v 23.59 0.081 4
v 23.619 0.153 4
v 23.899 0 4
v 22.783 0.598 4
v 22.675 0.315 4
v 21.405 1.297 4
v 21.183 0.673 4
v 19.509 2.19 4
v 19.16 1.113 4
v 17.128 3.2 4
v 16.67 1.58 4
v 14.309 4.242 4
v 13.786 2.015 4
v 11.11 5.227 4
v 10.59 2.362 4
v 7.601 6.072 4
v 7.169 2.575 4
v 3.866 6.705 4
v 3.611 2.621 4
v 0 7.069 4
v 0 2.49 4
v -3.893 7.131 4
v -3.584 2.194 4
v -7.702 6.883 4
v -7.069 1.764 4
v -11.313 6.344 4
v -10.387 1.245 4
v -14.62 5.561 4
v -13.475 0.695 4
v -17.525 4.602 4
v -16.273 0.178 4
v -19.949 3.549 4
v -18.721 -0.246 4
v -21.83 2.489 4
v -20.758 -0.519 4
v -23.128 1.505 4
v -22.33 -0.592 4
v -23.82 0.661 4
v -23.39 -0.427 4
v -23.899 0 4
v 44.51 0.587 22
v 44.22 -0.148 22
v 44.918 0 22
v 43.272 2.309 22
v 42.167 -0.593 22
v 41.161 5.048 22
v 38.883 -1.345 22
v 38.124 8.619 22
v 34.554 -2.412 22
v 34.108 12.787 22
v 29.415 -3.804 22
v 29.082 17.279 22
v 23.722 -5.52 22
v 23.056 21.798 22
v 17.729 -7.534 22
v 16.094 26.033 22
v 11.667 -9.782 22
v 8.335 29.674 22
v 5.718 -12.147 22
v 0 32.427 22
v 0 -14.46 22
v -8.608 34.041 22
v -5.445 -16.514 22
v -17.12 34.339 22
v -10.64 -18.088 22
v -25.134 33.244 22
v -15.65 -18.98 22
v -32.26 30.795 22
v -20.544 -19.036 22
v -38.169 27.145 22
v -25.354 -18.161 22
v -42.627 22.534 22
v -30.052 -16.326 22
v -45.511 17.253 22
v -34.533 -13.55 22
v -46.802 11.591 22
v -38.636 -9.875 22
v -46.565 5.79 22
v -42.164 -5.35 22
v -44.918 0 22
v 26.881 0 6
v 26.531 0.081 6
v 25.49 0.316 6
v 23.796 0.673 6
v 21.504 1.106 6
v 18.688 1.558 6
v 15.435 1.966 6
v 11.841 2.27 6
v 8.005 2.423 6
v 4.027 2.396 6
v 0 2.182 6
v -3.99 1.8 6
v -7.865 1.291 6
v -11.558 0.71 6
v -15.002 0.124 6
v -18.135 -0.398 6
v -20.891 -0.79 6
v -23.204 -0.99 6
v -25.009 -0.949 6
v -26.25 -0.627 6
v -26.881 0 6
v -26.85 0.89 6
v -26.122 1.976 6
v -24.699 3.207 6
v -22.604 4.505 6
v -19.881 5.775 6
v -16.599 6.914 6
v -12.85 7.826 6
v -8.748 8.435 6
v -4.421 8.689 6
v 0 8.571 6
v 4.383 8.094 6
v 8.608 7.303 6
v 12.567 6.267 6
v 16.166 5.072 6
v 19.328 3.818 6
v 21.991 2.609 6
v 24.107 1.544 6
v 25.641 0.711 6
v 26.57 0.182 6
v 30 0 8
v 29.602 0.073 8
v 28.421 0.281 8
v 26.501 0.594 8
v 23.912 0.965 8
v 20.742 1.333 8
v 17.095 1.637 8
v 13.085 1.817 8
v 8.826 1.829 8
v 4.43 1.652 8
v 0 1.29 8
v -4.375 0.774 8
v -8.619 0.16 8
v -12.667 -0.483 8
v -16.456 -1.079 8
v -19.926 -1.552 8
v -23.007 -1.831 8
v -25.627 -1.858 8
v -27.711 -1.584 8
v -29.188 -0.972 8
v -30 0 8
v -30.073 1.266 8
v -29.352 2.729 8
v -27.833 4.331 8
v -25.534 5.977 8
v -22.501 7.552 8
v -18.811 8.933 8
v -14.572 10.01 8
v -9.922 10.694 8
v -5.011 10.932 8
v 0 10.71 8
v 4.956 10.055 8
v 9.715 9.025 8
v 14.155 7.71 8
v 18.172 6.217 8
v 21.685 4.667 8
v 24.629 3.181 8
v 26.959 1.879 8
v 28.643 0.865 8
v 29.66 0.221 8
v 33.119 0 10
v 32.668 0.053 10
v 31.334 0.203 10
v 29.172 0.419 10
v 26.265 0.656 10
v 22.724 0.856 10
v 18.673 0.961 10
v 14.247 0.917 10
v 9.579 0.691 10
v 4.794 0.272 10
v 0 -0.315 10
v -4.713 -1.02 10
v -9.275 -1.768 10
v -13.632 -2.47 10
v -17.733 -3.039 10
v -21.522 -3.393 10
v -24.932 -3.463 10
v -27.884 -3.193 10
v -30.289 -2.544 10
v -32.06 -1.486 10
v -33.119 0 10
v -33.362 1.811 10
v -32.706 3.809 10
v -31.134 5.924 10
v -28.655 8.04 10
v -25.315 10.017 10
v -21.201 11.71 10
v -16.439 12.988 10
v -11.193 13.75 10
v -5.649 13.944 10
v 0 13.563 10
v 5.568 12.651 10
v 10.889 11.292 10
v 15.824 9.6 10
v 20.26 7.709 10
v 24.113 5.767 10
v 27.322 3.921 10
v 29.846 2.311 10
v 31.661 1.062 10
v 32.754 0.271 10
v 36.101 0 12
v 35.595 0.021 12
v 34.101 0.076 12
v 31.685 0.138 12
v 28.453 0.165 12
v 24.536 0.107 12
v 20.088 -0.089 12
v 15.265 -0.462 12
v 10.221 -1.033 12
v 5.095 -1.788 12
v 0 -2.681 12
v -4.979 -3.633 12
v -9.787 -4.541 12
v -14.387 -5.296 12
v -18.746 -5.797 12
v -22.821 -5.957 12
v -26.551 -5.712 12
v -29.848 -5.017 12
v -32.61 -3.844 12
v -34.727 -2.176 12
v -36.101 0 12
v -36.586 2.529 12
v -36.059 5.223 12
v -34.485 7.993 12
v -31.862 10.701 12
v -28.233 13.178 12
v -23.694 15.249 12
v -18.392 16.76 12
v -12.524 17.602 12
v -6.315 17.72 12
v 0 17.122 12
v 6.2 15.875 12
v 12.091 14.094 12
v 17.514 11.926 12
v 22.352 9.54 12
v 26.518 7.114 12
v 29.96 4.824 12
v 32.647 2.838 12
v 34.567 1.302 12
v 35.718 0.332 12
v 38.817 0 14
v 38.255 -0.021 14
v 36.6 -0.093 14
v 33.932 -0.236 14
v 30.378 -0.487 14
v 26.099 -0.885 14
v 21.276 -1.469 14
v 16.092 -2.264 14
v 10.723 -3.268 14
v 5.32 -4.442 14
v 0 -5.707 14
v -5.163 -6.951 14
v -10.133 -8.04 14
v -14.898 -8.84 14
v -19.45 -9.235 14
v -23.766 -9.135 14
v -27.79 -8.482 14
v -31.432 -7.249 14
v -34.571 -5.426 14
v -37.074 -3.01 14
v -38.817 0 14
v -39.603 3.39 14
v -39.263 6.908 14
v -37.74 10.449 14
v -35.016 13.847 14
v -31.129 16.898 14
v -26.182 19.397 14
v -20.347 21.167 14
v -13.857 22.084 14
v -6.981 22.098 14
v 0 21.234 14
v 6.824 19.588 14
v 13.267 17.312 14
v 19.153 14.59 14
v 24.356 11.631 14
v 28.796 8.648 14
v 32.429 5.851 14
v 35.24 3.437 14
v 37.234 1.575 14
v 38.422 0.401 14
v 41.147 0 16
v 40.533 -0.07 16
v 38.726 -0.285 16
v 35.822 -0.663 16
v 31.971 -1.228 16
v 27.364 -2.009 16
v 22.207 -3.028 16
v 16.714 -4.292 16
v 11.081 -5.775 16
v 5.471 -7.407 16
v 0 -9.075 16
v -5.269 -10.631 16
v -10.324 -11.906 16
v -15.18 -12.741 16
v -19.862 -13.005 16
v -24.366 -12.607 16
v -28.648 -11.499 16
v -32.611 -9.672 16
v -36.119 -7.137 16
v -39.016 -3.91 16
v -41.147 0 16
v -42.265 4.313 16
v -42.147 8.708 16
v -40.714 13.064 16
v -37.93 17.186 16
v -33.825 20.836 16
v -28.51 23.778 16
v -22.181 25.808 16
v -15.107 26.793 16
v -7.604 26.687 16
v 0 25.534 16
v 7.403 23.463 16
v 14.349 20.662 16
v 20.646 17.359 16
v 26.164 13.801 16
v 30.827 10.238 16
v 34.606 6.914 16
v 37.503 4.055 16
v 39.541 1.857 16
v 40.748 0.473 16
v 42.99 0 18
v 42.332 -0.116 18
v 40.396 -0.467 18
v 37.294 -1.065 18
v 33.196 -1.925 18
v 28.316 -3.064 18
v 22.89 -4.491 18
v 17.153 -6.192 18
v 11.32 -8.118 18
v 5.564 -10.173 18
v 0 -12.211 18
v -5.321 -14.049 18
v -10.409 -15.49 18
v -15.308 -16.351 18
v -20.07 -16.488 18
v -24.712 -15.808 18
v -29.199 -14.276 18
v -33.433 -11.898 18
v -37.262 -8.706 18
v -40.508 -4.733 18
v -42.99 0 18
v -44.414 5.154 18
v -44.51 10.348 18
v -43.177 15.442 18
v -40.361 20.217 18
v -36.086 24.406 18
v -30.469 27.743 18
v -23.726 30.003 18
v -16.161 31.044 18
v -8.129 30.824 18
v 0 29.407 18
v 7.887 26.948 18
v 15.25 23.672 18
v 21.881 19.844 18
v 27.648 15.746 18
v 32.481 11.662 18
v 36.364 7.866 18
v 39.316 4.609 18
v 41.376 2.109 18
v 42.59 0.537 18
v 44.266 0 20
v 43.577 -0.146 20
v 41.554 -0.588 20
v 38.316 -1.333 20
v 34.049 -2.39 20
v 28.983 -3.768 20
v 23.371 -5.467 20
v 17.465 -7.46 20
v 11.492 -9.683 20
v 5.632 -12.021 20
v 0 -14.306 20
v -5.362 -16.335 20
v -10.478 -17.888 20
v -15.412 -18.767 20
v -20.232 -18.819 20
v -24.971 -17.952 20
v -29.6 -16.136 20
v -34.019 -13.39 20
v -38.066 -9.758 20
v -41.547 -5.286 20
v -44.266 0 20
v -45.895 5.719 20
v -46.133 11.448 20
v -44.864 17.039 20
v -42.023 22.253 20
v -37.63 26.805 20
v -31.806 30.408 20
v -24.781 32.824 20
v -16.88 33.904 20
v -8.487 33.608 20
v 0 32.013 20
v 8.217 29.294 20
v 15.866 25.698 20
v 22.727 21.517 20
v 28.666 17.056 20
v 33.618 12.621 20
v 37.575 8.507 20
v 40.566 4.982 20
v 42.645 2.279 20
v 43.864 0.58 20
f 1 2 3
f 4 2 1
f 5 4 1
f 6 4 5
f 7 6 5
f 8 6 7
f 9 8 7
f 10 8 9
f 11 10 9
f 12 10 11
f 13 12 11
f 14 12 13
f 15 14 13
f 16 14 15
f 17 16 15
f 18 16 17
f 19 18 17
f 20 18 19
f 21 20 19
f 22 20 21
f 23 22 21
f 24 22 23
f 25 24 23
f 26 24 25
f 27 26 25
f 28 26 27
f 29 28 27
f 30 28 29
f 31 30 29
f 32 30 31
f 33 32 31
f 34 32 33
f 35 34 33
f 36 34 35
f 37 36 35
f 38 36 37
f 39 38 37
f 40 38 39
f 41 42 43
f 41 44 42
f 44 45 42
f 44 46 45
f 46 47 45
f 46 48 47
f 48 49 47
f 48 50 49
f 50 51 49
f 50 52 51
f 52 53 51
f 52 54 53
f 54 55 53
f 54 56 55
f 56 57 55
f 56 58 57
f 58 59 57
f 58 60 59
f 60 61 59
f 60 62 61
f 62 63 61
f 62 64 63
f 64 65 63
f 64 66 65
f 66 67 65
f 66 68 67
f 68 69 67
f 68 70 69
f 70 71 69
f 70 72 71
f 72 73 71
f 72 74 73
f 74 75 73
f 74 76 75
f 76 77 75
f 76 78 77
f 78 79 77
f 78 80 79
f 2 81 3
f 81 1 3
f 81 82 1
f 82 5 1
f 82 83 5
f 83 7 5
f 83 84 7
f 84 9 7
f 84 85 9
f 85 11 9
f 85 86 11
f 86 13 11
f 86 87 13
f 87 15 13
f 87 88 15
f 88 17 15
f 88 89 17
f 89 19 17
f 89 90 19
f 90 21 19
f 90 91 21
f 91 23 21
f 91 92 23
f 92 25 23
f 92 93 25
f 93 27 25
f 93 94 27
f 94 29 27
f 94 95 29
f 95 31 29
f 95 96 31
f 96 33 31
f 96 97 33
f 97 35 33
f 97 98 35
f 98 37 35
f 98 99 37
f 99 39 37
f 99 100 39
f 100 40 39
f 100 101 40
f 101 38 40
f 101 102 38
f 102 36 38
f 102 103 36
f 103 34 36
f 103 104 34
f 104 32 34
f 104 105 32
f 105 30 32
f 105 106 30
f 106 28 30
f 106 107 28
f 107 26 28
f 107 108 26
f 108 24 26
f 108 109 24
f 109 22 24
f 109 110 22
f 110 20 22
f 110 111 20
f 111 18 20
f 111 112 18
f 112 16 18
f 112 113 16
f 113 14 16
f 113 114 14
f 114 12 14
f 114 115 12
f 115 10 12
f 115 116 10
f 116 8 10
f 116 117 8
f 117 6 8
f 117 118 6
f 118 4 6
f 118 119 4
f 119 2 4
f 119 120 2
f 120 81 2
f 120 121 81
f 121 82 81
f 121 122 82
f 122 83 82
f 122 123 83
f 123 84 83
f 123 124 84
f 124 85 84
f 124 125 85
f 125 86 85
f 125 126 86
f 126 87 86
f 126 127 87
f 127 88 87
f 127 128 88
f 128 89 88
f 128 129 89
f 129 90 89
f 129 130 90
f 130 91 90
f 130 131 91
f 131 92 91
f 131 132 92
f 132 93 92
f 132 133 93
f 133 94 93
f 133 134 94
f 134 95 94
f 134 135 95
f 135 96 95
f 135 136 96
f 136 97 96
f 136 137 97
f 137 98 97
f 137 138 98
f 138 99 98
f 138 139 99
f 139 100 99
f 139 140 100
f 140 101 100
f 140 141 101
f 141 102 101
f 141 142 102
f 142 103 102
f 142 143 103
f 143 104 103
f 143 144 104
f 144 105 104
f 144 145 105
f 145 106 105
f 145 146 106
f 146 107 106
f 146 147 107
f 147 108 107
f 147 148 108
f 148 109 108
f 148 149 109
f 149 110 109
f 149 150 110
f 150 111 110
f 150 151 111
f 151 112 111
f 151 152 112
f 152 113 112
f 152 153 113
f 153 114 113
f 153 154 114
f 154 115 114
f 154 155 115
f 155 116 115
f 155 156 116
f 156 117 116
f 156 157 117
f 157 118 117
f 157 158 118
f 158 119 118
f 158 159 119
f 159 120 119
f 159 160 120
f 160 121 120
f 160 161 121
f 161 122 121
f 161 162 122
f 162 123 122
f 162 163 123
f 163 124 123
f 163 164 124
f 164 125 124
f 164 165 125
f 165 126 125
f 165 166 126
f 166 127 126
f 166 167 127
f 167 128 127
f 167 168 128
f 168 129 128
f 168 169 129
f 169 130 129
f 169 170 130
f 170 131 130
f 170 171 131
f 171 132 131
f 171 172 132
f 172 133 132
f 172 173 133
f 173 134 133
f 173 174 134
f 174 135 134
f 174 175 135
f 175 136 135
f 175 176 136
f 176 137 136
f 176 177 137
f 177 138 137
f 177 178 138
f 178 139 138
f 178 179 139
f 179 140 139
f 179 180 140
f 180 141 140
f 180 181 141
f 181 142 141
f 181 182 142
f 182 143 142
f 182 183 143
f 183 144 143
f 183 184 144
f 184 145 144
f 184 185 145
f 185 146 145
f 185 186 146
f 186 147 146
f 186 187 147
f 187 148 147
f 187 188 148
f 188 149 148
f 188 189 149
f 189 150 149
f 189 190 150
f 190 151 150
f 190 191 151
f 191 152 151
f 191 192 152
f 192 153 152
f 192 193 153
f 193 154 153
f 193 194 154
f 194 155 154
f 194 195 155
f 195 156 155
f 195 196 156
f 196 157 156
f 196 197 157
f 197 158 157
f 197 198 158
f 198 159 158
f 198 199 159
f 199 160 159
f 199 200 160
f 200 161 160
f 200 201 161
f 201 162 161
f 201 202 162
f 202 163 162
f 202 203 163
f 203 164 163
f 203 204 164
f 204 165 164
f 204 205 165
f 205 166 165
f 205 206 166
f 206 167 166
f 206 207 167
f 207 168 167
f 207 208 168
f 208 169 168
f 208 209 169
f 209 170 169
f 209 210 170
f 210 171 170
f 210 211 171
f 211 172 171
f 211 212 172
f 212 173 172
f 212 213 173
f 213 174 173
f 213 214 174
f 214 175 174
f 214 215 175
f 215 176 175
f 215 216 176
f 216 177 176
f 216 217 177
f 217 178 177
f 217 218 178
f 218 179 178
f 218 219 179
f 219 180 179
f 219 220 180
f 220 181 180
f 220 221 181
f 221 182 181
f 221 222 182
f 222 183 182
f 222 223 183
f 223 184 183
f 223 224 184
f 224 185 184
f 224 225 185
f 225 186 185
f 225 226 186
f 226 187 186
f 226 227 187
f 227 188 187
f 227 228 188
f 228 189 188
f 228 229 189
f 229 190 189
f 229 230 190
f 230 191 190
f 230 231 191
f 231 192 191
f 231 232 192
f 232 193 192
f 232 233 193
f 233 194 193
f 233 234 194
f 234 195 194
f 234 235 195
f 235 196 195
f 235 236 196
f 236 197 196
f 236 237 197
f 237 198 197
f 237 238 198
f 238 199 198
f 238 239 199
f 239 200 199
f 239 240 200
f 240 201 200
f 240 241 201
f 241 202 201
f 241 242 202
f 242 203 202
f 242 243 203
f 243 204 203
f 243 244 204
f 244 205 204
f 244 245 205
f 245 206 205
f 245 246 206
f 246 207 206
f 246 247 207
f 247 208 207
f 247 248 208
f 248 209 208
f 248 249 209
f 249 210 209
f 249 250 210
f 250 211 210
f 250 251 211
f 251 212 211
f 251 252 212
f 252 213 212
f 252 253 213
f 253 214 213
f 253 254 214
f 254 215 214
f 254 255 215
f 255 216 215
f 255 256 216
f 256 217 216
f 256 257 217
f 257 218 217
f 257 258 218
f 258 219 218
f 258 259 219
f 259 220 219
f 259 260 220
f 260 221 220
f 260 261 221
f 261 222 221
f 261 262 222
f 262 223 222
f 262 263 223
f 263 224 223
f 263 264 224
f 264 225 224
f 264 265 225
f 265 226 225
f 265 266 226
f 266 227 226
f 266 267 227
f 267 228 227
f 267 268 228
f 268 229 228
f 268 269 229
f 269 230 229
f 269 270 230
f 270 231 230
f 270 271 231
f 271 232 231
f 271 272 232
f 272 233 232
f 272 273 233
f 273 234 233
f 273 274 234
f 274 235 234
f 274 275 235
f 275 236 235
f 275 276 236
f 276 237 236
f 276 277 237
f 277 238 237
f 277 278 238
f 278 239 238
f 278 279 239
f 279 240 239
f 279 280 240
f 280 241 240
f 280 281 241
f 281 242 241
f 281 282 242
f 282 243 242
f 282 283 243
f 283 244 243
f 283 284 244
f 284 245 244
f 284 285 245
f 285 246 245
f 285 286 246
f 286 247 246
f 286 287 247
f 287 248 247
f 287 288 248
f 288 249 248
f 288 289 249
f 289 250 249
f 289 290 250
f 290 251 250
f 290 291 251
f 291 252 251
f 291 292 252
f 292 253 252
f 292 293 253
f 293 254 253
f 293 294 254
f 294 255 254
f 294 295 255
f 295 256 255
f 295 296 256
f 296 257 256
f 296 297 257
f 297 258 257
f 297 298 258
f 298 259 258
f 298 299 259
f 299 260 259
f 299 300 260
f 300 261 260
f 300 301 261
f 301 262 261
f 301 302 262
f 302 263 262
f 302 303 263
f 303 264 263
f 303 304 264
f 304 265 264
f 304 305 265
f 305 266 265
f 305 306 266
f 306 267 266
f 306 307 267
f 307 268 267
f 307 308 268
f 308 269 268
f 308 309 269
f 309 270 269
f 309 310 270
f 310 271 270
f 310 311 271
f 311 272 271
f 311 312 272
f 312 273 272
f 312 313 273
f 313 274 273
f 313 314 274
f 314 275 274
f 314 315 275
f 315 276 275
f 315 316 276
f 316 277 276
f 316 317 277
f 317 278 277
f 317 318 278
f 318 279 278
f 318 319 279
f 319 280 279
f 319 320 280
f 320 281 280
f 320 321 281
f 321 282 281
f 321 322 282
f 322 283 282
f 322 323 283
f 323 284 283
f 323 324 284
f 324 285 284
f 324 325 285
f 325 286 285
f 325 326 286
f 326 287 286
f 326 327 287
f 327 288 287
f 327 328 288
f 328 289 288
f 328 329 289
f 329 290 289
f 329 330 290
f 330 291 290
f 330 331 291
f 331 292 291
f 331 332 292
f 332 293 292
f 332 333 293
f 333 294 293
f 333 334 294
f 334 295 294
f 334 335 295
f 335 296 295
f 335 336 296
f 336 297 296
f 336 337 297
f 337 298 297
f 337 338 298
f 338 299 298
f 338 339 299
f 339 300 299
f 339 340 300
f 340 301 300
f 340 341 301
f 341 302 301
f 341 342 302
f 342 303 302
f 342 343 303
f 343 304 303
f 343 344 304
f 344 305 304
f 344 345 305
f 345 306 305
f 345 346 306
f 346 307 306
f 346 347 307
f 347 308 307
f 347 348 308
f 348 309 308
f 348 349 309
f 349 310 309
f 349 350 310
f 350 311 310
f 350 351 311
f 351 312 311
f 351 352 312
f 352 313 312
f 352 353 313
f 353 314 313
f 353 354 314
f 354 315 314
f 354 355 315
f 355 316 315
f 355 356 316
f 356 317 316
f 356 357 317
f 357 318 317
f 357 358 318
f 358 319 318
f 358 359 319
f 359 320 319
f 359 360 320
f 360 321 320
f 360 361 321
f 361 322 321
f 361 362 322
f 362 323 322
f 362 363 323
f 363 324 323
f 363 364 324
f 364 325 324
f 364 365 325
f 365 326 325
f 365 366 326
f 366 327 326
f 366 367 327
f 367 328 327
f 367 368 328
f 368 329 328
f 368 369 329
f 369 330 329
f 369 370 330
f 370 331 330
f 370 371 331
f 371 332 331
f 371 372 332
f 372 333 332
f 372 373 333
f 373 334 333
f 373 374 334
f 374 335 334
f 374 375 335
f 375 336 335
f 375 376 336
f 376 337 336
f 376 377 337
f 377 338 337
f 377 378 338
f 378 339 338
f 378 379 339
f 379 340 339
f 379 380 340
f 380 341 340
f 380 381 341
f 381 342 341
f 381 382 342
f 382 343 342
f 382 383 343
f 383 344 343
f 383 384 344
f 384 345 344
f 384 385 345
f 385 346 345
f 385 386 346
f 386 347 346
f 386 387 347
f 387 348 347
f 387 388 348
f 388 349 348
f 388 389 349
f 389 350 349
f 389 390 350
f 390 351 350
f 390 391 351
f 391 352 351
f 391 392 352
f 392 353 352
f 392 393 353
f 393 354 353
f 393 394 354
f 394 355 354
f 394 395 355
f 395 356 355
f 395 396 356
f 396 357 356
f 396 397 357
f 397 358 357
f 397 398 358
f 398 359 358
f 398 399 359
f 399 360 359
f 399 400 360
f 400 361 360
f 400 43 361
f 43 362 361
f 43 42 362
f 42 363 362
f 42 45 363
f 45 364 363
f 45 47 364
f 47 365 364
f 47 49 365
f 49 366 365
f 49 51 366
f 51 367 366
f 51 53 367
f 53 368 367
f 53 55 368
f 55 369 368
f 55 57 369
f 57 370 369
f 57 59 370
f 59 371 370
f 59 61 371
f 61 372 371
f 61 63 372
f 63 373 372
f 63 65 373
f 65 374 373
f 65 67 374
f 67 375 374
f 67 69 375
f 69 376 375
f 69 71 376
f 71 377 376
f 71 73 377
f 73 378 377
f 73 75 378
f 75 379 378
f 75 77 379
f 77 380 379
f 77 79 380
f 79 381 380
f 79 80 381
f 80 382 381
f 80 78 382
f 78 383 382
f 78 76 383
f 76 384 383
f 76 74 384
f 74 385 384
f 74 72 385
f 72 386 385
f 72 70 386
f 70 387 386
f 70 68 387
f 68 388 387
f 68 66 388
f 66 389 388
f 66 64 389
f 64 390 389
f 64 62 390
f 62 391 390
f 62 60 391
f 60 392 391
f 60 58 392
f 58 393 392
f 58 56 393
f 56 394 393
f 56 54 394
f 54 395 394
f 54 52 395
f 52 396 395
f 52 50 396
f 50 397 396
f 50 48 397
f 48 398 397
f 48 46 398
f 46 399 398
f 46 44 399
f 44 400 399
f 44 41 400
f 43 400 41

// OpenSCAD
// file: Naca4.scad
// Naca4.scad - library for parametric airfoils of 4 digit NACA series
// Code: Rudolf Huttary, Berlin 
// June 2015
// commercial use prohibited


// general use: for more examples refer to sampler.scad
// naca = naca digits or 3el vector  (default = 12 or [0, 0, .12])
// L    = chord length [mm]      (default= 100)
// N    = # sample points        (default= 81)
// h    = height [mm]            (default= 1)
// open = close at the thin end? (default = true)
// two equivalent example calls
 airfoil(naca = 2432, L = 60, N=1001, h = 30, open = false); 
// airfoil(naca = [.2, .4, .32], L = 60, N=1001, h = 30, open = false); 

module help()
{
  echo(str("\n\nList of signatures in lib:\n=================\n", 
  "module airfoil(naca=2412, L = 100, N = 81, h = 1, open = false) - renders airfoil object\n", 
  "module airfoil(naca=[.2, .4, .12], L = 100, N = 81, h = 1, open = false) - renders airfoil object using percentage for camber,  camber distance and thicknes\n", 
  "function airfoil_data(naca=12, L = 100, N = 81, open = false)\n",
  "=================\n")); 
}

help(); 
// this is the object
module airfoil(naca=12, L = 100, N = 81, h = 1, open = false)
{
  linear_extrude(height = h)
  polygon(points = airfoil_data(naca, L, N, open)); 
}

// this is the main function providing the airfoil data
function airfoil_data(naca=12, L = 100, N = 81, open = false) = 
  let(Na = len(naca)!=3?NACA(naca):naca)
  let(A = [.2969, -0.126, -.3516, .2843, open?-0.1015:-0.1036])
  [for (b=[-180:360/(N):179.99]) 
    let (x = (1-cos(b))/2)  
    let(yt = sign(b)*Na[2]/.2*(A*[sqrt(x), x, x*x, x*x*x, x*x*x*x])) 
    Na[0]==0?L*[x, yt]:L*camber(x, yt, Na[0], Na[1], sign(b))];  

// helper functions
function NACA(naca) = 
  let (M = floor(naca/1000))
  let (P = floor((naca-M*1000)/100)) 
  [M/10, P/10, floor(naca-M*1000-P*100)/100];  

function camber(x, y, M, P, upper) = 
  let(yc = (x<P)?M/P/P*(2*P*x-x*x): M/(1-P)/(1-P)*(1 - 2*P + 2*P*x -x*x))
  let(dy = (x<P)?2*M/P/P*(P-x):2*M/(1-P)/(1-P)*(P-x))
  let(th = atan(dy))
  [upper ? x - y*sin(th):x + y*sin(th), upper ? yc + y*cos(th):yc - y*cos(th)];
// main file
// Naca4_sweep.scad - sweep library
// Code: Rudolf Huttary, Berlin 
// June 2015
// commercial use prohibited

use <Naca4.scad>

//example1(); 
//rotate([80, 180, 130])
example(); 

// sweep from NACA1480 to NACA6480 (len = 230 mm, winding y,z = 80°
// sweeps generates a single polyhedron from multiple datasets
module example()
{
  N = 40; 
  sweep(gen_dat(N=5, dz=1,N=N)); 
  
  // specific generator function
  function gen_dat(M=10,dz=.1,N=10) = [for (i=[1:dz:M])   
    let( L = length(i))
    let( af = vec3D(
        airfoil_data([.1,.5,thickness(i)], L=length(i), N = N)))
    T_(-L/2, 0, (i+1)*2, af)];  // translate airfoil
  
  function thickness(i) = .5*sin(i*i)+.1; 
  function length(i) = (60+sin(12*(i-3))*30); 
}

module help()
{
  echo(str("\n\nList of signatures in lib:\n=================\n", 
  "module sweep(dat, convexity = 5, showslices= false) // dat - vec of vec2, with vec1 = airfoil_data\n", 
  "function vec3D(v, z=0)  // expand vec2 to vec3",
  "function rot(w=0, p) // rotate vec2",
  "function T_(x=0, y=0, z=0, v) // translates vec of vec3\n", 
  "function R_(x=0, y=0, z=0, v) // rotates vec of vec3\n", 
  "function Rx_(x=0, v) // x-rotates vec of vec3\n", 
  "function Ry_(y=0, v) // y-rotates vec of vec3\n", 
  "function Rz_(z=0, v) // z-rotates vec of vec3\n", 
  "function T_(x=0, y=0, z=0, v) // translates vec of vec3\n", 
  "function Tx_(x=0, v) // x-translates vec of vec3\n", 
  "function Ry_(y=0, v) // y-translates vec of vec3\n", 
  "function Rz_(z=0, v) // z-translates vec of vec3\n", 
  "function S_(x=0, y=0, z=0, v) // scales vec of vec3\n", 
  "function Sx_(x=0, v) // x-translates vec of vec3\n", 
  "function Sy_(x=0, v) // y-translates vec of vec3\n", 
  "function Sz_(x=0, v) // z-translates vec of vec3\n", 
  "=================\n")); 
}


// generate polyhedron from multiple airfoil_datasets
// dat - vec of vec1, with vec1 = airfoil_data, >3 points per dataset expected
module sweep(dat, convexity = 5, showslices= false) 
{
  n = len(dat);     // # datasets
  l = len(dat[0]);  // points per dataset 
  if(l<=3) 
    echo("ERROR: sweep() expects more than 3 points per dataset"); 
  else
  {
    first = faces_polygon(l, true);  // triangulate first dataset
    last = faces_shift((n-2)*l, faces_polygon(l, false)); // triangulate last dataset
    if (showslices)
      for(i=[0:n-1])
        sweep([dat[i]]); 
    else
      if (n<2)  // this case is also used recursively for showslices
        polyhedron(points = flat(), faces  = last, convexity = 5); 
      else
      {
        polyhedron(points = flat(), 
                   faces  = concat(first, last, faces_sweep(l,n)), convexity = 5); 
      }
  }
  function faces_shift(d, dat) = [for (i=[0:len(dat)-1]) dat[i] + [d, d, d]]; 
  function flat() = [for (i=[0:n-1], j=[0:l-1]) dat[i][j]]; 
}

function del(A, n) = [for(i=[0:len(A)-1]) if (n!=i)A[i]]; 

//// composition stuff for polyhedron
  function faces_sweep(l, n=1) = let(M = n*l) 
      concat([[0,l,l-1]],   // first face
      [for (i=[0:l*(n-1)-2], j = [0,1])
        j==0? [i, i+1, (i+l)] : [i+1, (i+l+1), i+l]], 
      [[n*l-1, (n-1)*l-1, (n-1)*l]]) // last face
      ;
    
  function faces_polygon(l, first = true) = let(odd = (l%2==1), d=first?0:l)
    let(res = odd?concat([[d,d+1,d+l-1]],
      [for (i=[1:(l-3)/2], j=[0,1])(j==0)?[d+i,d+i+1,d+l-i]:[d+i+1,d+l-i-1, d+l-i]]):
      [for (i=[0:(l-4)/2], j=[0,1])(j==0)?[d+i,d+i+1,d+l-i-1]:[d+i+1,d+l-i-2, d+l-i-1]])
    first?facerev(res):res;
    
  function facerev(dat) = [for (i=[0:len(dat)-1]) [dat[i][0],dat[i][2],dat[i][1]]]; 



//// vector stuff ///////////////////////////////////////
//// Expand 2D vector into 3D
function vec3D(v, z=0) = [for(i = [0:len(v)-1]) 
  len(v[i])==2?[v[i][0], v[i][1], z]:v[i]+[0, 0, z]]; 

//// Translation - 1D, 2D, 3D vectors //////////////////////////
/// vector along all axes
function T_(x=0, y=0, z=0, v) = let(x_ = (len(x)==3)?x:[x, y, z])
  [for (i=[0:len(v)-1]) T__(x_[0], x_[1], x_[2], p=v[i])]; 
/// vector along one axis
function Tx_(x=0, v) = T_(x=x, v=v); 
function Ty_(y=0, v) = T_(y=y, v=v); 
function Tz_(z=0, v) = T_(z=z, v=v); 
/// point along all axes 1D, 2D, 3D allowed
function T__(x=0, y=0, z=0, p) = len(p)==3?p+[x, y, z]:len(p)==2?p+[x, y]:p+x; 

//// Rotation - 2D, 3D vectors ///////////////////////////////////
// vector around all axes 
function R_(x=0, y=0, z=0, v) =             // 2D vectors allowed 
  let(x_ = (len(x)==3)?x:[x, y, z])
  len(v[0])==3?Rx_(x_[0], Ry_(x_[1], Rz_(x_[2], v))):
  [for(i = [0:len(v)-1]) rot(x_[2], v[i])];  
// vector around one axis
function Rx_(x=0, v) = [for(i = [0:len(v)-1])
  let (yz = rot(x, p=[v[i][1], v[i][2]])) [v[i][0], yz[0], yz[1]]];  

function Ry_(y=0, v) = [for(i = [0:len(v)-1])
  let (xz = rot(y, p=[v[i][0], v[i][2]])) [xz[0], v[i][1], xz[1]]];  
function Rz_(z=0, v) = [for (i=[0:len(v)-1]) // 2D vectors allowed  
  let (xy = rot(z, p=[v[i][0], v[i][1]])) 
  len(v[0])==3?[xy[0], xy[1], v[i][2]]:xy];  
// single point in 2D
function rot(w=0, p) = [p[0]*cos(w)-p[1]*sin(w), p[0]*sin(w)+p[1]*cos(w)]; 

//// Scale - 2D, 3D vectors ///////////////////////////////////
// vector along all axes 
function S_(x=1, y=1, z=1, v) = 
  [for (i=[0:len(v)-1]) S__(x,y,z, v[i])]; 
// vector along one axis
function Sx_(x=0, v) = S_(x=x, v=v); 
function Sy_(y=0, v) = S_(y=y, v=v); 
function Sz_(z=0, v) = S_(z=z, v=v); 
// single point in 2D
function S__(x=1, y=1, z=1, p) = 
  len(p)==3?[p[0]*x, p[1]*y, p[2]*z]:len(p)==2?[p[0]*x+p[1]*y]:[p[0]*x]; 

 
 
